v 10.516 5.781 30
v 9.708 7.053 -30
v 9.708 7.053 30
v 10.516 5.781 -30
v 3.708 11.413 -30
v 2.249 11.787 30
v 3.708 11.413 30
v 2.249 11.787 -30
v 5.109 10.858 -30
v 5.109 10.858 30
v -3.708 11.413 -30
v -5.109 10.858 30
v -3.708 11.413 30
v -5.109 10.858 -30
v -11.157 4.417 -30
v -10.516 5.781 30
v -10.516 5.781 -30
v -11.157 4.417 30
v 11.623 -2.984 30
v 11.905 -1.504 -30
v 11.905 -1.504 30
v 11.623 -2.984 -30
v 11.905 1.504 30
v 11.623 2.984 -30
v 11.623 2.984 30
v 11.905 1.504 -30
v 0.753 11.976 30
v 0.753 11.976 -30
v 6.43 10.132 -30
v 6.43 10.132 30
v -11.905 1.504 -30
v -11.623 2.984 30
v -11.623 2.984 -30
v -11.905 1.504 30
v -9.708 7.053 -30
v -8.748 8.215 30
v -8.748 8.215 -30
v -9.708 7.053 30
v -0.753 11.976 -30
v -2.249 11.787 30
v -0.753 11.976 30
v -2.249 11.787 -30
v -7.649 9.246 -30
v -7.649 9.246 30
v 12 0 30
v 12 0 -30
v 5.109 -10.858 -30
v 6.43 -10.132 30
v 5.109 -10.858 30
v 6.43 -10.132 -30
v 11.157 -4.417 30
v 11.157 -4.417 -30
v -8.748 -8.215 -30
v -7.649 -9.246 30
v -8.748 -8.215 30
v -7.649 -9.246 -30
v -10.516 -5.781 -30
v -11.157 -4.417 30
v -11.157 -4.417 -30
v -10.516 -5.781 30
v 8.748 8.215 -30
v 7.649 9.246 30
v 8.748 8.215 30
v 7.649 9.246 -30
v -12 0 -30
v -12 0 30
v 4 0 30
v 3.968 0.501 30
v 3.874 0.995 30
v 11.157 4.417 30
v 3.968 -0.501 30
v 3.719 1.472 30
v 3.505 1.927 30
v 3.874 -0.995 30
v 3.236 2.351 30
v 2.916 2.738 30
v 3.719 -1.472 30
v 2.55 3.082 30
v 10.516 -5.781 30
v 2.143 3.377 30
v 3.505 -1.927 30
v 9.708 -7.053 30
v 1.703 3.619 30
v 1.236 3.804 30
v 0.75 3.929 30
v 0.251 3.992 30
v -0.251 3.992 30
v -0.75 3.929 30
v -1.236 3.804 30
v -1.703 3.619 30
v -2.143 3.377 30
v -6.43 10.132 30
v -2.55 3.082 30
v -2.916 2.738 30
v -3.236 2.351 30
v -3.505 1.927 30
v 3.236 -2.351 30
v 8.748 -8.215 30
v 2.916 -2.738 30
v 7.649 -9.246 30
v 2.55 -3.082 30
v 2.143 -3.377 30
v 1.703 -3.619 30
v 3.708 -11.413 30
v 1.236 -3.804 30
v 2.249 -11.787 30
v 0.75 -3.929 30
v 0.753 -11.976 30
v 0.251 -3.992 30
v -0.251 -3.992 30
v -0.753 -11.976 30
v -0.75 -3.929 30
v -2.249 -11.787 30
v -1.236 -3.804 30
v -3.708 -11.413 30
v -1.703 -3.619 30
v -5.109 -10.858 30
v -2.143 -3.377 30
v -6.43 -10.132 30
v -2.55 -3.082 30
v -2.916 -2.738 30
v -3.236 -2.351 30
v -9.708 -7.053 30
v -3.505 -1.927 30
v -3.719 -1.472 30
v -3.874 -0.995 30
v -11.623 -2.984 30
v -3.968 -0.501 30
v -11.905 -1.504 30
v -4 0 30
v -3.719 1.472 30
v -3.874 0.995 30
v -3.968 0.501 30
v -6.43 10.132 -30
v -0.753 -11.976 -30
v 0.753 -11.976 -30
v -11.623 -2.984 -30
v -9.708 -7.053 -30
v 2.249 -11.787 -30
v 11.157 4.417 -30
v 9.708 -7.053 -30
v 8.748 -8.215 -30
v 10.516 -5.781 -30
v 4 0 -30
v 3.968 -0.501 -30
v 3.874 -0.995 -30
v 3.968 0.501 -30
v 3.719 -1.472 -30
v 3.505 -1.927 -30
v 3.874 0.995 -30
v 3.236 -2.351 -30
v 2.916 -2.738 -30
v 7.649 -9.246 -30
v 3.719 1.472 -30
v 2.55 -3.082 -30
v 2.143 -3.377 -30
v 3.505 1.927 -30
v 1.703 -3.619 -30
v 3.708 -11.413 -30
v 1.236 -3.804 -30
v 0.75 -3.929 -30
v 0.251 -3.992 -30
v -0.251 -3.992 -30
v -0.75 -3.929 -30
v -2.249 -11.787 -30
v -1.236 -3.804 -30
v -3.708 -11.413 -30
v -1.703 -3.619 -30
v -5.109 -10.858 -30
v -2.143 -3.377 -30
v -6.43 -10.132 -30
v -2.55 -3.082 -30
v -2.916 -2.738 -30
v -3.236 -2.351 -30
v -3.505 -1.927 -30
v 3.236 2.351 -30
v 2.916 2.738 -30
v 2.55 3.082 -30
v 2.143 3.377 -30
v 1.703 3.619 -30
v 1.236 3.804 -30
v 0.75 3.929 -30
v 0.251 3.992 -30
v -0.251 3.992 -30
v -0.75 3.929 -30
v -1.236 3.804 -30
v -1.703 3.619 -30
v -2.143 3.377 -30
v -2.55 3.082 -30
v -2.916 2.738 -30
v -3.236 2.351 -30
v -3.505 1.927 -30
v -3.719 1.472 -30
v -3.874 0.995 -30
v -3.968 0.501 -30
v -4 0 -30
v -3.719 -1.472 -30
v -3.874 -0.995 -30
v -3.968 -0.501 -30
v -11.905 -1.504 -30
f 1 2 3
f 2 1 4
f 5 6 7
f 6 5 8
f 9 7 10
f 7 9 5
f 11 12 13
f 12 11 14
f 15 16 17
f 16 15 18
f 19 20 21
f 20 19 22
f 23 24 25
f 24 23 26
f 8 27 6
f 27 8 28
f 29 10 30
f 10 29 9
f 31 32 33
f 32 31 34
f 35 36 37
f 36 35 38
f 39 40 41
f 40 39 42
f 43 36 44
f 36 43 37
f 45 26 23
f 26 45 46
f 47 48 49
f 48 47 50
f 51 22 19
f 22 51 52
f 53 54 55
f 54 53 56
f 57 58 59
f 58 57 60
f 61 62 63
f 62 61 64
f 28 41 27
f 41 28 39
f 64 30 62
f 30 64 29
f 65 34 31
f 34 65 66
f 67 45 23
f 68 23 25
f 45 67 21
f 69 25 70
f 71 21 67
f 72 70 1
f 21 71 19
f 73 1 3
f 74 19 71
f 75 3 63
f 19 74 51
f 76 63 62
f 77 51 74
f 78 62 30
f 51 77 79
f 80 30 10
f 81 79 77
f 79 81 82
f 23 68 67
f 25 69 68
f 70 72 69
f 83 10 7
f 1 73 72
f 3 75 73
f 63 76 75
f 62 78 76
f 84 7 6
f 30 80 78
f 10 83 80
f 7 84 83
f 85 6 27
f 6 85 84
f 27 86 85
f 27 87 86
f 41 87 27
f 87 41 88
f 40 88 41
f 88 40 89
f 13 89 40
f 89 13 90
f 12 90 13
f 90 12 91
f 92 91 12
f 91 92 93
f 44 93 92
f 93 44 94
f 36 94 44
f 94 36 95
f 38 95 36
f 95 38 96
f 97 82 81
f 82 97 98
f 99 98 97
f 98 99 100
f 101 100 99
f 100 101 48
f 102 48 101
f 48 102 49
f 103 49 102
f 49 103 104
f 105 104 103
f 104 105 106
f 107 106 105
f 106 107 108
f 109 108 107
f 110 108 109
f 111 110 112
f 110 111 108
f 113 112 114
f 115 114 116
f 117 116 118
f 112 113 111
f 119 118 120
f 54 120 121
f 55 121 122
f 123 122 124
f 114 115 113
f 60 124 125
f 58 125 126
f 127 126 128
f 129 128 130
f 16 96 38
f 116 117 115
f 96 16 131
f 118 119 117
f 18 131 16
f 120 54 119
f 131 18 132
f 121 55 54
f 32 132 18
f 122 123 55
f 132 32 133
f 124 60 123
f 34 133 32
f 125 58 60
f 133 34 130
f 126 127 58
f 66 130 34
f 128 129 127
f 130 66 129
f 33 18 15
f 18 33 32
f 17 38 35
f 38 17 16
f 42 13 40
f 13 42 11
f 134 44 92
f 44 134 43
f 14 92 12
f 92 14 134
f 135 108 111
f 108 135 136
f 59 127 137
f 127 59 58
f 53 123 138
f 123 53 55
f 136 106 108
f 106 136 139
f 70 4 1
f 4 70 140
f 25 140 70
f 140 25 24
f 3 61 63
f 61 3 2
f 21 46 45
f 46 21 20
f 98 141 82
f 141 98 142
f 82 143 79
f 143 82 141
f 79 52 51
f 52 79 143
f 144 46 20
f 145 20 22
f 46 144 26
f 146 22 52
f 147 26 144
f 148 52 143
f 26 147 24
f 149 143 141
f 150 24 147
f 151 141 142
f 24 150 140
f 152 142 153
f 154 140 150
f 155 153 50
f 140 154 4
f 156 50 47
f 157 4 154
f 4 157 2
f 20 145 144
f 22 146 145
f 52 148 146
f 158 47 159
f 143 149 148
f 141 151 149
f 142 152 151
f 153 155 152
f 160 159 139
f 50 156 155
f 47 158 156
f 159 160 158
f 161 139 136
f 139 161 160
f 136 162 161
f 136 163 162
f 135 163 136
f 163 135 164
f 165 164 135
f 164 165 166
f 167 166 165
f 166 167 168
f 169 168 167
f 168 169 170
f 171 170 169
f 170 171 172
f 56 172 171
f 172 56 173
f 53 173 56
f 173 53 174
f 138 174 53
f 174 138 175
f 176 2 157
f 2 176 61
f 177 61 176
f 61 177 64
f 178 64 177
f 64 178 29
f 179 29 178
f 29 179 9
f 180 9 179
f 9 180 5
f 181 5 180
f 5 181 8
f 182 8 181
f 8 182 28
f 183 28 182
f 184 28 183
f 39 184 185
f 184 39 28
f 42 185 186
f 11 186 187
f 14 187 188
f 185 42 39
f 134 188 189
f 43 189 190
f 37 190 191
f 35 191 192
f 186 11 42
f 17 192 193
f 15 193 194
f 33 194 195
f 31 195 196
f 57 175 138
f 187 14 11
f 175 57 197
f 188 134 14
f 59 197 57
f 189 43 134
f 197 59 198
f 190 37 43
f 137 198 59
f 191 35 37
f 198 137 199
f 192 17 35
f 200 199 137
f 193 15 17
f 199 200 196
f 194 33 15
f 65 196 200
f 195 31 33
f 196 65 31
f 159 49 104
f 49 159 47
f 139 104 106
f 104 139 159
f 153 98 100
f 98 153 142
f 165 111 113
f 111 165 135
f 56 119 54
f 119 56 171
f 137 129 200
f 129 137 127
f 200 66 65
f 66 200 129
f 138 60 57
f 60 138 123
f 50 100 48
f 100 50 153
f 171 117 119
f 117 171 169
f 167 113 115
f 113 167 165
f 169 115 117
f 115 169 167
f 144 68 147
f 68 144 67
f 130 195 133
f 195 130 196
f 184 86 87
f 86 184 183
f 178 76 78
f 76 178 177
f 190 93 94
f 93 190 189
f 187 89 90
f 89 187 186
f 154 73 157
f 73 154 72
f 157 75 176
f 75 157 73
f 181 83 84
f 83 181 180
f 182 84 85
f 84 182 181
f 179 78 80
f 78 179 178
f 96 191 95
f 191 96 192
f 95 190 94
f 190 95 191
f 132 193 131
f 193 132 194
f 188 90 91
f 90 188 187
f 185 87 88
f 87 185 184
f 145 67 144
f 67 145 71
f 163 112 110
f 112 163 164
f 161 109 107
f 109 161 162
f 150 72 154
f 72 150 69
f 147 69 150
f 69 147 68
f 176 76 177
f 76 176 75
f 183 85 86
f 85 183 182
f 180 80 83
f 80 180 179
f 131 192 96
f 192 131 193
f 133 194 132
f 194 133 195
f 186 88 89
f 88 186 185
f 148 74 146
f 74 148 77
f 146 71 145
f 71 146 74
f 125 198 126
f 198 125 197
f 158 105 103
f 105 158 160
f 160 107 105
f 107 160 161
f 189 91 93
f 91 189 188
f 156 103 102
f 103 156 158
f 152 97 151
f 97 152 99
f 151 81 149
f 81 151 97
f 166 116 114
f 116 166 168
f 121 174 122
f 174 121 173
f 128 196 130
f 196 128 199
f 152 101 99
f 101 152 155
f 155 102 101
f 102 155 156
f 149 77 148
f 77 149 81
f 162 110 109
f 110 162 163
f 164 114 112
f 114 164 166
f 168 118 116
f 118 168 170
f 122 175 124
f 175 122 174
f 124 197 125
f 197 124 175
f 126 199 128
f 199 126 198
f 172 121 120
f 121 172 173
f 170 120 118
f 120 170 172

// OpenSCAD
$fn = 50;


difference() {
	union() {
		translate(v = [0, 0, -30.0000000000]) {
			cylinder(h = 60, r = 12.0000000000);
		}
	}
	union() {
		translate(v = [0, 0, -100.0000000000]) {
			cylinder(h = 200, r = 4);
		}
	}
}
